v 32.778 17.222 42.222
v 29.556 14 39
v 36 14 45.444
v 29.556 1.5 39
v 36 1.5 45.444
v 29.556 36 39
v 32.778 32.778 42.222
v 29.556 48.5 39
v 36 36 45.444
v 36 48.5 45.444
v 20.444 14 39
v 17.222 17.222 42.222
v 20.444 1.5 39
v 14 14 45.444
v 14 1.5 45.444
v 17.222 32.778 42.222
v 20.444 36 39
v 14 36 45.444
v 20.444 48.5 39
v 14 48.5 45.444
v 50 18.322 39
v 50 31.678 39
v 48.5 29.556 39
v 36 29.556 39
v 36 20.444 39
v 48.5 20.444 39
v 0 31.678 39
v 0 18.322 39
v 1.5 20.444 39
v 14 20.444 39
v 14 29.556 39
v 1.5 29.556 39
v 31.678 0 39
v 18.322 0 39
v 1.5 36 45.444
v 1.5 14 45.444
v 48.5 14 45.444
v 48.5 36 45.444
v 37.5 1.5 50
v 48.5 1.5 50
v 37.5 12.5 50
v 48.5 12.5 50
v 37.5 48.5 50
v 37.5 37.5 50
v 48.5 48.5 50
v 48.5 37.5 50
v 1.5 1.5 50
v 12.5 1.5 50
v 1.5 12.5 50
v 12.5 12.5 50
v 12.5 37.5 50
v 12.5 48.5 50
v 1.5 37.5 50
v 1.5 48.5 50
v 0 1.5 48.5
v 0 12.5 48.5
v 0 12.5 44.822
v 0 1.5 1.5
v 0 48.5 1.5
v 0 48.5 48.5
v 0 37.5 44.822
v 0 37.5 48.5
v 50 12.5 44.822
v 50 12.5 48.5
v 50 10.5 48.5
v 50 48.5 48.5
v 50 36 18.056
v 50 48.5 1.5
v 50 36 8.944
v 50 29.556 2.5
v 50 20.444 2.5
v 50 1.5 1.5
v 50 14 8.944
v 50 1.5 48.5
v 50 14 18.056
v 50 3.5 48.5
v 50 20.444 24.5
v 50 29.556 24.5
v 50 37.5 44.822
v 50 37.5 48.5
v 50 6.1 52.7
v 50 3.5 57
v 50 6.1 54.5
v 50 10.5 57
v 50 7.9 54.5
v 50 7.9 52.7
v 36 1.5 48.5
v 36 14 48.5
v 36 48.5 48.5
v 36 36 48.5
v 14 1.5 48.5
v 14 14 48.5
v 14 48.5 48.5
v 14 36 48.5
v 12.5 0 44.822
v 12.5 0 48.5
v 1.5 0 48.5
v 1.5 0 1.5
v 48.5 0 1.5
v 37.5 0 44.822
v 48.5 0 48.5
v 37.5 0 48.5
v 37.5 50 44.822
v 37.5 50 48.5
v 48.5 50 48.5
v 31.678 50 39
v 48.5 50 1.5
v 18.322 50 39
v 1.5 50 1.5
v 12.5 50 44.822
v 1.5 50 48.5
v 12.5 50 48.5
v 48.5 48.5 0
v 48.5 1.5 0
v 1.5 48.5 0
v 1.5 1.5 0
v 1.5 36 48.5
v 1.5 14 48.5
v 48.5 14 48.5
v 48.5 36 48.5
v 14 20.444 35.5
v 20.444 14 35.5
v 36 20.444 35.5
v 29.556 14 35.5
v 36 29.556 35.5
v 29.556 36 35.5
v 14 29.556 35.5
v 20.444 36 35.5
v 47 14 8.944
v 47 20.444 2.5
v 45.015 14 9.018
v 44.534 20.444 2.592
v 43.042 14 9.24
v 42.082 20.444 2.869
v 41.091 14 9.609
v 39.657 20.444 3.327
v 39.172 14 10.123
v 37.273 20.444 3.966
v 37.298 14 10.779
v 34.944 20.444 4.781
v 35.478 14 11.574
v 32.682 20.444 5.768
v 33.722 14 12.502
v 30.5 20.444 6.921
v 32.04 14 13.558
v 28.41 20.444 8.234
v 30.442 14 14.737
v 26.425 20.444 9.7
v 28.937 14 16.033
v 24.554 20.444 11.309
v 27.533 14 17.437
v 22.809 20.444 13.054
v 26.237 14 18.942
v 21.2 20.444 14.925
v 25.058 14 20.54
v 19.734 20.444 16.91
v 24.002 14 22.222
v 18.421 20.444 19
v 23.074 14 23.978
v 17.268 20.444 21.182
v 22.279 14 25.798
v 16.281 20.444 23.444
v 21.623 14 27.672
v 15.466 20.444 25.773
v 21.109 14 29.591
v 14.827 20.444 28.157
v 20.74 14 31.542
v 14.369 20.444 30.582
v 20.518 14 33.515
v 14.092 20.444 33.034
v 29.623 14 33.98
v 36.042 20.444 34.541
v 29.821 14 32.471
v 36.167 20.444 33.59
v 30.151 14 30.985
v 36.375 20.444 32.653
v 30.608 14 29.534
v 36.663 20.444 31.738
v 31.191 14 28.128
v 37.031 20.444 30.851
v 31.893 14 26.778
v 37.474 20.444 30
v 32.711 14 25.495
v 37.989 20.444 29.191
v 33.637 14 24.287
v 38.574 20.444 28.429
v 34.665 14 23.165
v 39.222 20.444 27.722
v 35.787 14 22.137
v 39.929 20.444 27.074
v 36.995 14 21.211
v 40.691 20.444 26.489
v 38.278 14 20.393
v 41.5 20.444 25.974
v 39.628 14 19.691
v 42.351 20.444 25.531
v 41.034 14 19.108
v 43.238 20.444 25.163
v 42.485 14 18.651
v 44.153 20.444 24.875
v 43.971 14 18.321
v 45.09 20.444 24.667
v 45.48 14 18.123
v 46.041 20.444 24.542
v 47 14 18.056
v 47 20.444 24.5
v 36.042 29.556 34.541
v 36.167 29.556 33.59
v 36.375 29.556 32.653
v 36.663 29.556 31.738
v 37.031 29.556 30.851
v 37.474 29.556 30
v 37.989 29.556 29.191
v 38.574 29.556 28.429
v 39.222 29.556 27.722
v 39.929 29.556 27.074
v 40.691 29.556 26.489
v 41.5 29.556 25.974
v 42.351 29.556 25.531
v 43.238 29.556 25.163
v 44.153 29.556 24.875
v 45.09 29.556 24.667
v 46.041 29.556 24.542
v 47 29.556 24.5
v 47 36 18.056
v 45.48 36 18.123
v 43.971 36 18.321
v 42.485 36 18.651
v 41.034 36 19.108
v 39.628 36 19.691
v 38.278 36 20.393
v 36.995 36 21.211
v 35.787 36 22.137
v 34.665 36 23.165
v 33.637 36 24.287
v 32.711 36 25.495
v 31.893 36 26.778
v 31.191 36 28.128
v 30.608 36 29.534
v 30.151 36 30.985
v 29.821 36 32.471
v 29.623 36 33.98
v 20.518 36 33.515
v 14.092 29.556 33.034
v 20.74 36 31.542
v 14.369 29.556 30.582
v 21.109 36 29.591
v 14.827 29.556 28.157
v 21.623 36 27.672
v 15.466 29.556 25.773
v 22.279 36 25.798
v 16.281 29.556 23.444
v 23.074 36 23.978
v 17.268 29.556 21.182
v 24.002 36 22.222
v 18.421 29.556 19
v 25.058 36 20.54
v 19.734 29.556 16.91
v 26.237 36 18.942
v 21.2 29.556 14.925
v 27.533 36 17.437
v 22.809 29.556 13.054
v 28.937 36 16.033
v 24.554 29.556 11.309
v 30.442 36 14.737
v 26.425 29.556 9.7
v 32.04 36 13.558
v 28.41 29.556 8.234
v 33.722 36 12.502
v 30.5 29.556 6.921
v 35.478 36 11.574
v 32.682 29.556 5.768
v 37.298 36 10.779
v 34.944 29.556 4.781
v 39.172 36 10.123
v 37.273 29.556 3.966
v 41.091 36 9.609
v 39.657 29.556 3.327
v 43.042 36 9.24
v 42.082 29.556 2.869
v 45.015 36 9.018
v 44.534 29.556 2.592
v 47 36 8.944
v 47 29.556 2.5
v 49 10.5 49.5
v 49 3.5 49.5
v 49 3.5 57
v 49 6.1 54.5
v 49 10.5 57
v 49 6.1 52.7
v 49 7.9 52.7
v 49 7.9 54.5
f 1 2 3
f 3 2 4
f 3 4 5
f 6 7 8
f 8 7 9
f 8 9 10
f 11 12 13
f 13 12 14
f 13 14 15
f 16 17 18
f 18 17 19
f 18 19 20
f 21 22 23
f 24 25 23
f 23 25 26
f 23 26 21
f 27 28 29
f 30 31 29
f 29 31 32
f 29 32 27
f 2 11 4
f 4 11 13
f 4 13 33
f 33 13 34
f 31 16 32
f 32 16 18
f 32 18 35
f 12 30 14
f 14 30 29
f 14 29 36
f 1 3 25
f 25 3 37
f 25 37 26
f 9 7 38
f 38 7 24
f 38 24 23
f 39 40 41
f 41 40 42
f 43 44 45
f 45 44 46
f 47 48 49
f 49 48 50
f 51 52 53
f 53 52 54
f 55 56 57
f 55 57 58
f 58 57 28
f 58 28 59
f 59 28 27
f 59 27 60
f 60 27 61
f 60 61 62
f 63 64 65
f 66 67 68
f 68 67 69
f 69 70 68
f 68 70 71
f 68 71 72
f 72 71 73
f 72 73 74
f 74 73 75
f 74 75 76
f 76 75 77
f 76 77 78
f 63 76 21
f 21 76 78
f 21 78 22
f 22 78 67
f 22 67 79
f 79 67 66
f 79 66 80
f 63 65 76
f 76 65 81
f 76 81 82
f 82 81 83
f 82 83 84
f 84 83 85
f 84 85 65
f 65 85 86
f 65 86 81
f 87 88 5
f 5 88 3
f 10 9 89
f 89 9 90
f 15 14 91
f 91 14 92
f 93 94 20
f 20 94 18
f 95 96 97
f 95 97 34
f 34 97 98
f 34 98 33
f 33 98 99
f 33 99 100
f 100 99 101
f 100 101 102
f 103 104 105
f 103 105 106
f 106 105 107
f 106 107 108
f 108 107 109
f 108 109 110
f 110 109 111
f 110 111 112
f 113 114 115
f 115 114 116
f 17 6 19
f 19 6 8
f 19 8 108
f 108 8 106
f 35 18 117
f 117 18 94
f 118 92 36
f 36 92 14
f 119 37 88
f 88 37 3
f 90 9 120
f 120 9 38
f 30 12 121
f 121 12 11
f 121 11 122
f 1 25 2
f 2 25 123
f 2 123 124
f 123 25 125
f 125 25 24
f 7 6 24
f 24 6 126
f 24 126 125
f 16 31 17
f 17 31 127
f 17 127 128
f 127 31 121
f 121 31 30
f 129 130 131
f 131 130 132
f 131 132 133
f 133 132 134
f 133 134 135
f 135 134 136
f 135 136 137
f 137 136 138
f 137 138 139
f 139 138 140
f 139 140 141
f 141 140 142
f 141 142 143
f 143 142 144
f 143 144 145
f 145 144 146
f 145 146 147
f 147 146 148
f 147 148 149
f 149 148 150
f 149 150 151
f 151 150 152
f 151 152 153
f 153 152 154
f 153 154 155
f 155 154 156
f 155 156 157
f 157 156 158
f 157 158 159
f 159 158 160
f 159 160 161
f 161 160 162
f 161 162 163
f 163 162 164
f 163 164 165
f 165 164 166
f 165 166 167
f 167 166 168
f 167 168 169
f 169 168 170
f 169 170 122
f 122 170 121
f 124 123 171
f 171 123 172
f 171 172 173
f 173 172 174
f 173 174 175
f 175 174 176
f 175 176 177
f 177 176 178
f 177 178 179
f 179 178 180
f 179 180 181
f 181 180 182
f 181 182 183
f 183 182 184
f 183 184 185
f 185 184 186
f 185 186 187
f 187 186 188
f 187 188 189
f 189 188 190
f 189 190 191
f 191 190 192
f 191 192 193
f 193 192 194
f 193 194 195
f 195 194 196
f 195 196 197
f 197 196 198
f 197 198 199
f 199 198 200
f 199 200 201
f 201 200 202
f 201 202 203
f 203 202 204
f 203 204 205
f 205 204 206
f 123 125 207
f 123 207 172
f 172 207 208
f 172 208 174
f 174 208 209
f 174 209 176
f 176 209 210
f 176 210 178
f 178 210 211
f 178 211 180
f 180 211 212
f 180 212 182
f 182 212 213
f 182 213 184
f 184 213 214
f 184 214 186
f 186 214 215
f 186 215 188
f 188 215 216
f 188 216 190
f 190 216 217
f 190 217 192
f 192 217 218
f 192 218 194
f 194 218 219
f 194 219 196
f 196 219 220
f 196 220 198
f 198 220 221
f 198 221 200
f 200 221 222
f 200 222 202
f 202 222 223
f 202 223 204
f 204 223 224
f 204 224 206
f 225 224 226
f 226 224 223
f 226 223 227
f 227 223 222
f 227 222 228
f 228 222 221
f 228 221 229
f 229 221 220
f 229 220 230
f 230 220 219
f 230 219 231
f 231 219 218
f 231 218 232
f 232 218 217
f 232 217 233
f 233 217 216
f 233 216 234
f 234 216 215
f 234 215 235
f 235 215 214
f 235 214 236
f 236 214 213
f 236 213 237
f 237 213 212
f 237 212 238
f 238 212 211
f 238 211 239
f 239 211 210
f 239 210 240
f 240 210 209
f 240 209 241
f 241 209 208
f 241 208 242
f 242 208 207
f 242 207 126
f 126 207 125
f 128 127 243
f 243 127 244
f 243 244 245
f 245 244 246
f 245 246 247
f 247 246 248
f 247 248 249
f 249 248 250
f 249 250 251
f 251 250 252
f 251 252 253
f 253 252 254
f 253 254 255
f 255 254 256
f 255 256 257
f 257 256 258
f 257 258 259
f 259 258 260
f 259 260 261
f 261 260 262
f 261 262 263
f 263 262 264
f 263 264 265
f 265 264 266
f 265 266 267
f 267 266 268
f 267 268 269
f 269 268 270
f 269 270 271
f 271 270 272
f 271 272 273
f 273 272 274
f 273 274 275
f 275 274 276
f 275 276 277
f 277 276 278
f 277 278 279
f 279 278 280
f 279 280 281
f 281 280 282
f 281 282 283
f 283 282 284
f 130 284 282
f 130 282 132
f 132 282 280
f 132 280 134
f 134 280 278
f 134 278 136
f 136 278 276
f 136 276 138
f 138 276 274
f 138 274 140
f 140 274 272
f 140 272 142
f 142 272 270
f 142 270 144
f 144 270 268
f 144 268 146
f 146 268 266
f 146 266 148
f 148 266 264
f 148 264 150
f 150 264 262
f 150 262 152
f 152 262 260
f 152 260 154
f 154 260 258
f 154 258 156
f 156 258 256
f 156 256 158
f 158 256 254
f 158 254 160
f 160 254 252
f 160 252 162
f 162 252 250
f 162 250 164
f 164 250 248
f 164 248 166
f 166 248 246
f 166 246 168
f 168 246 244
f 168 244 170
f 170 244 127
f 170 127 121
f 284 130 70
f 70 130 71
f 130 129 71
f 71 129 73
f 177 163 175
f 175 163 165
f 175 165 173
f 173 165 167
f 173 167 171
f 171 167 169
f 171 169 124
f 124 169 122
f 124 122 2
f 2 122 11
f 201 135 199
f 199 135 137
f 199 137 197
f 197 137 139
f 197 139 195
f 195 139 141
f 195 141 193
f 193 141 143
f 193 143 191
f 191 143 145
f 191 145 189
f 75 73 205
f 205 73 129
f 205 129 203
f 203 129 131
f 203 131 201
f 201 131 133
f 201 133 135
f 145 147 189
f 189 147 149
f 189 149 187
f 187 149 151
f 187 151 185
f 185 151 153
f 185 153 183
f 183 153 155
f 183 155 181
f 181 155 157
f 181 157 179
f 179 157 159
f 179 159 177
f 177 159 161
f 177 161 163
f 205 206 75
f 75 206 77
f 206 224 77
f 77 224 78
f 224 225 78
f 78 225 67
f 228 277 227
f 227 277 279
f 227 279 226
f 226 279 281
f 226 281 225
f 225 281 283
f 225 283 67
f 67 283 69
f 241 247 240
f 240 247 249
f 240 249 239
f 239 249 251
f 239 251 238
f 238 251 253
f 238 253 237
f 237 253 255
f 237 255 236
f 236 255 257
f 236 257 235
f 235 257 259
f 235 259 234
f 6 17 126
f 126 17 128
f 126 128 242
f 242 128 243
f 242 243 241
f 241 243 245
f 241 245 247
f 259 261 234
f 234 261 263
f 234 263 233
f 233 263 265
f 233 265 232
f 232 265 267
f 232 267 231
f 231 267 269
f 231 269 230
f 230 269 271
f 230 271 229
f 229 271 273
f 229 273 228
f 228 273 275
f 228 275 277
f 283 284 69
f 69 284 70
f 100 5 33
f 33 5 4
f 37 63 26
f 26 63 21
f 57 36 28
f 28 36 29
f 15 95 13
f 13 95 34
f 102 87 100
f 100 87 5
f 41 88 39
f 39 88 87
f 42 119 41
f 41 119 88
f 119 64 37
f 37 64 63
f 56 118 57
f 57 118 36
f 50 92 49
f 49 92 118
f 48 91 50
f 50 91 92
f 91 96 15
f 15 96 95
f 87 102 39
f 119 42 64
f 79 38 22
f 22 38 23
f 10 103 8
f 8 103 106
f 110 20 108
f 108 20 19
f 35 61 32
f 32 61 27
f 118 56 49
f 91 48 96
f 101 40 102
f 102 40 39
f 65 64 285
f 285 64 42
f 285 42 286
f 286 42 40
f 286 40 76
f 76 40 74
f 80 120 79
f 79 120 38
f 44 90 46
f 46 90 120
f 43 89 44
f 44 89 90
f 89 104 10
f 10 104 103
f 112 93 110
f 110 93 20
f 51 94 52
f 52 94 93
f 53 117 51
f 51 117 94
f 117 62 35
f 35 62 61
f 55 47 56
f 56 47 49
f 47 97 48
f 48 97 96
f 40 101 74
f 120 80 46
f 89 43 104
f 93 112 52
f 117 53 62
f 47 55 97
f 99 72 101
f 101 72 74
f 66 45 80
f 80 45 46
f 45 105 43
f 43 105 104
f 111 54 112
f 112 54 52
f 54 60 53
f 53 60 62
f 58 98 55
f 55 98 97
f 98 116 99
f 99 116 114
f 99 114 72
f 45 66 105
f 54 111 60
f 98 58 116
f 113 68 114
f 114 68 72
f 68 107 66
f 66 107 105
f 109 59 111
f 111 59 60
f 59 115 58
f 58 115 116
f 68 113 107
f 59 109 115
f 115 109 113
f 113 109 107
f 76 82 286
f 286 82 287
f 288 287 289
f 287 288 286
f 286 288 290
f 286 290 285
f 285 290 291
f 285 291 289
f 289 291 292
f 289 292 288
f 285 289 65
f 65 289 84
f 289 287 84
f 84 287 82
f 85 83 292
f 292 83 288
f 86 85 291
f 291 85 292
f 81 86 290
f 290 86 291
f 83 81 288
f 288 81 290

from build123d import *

# Parameters (mm, degrees)
SKETCH1_W                = 50
SKETCH1_H                = 50
BOSS_EXTRUDE1_DEPTH      = 50
CUT_EXTRUDE3_DEPTH       = 87.602540378
CUT_EXTRUDE4_DEPTH       = 87.602540378
CHAMFER1_SIZE            = 1.5
BOSS_EXTRUDE2_DEPTH      = 7
BOSS_EXTRUDE2_DEPTH_BACK = 10
SKETCH10_W               = 1
SKETCH10_H               = 7
SKETCH11_W               = 1.8
SKETCH11_H               = 1.8
CUT_EXTRUDE5_DEPTH       = 7


with BuildPart() as part:
    # Sketch1 → Boss-Extrude1 (new body)
    with BuildSketch(Plane.XY):
        with Locations((25, 25)):
            Rectangle(SKETCH1_W, SKETCH1_H)
    extrude(amount=BOSS_EXTRUDE1_DEPTH)

    # Sketch2 → Cut-Extrude3 (cut, through all)
    with BuildSketch(Plane.ZX):
        Polygon((61, 29.556349186), (54.556349186, 36), (45.443650814, 36), (39, 29.556349186), (39, 20.443650814), (45.443650814, 14), (54.556349186, 14), (61, 20.443650814), align=None)
    extrude(amount=CUT_EXTRUDE3_DEPTH, mode=Mode.SUBTRACT)

    # Sketch6 → Cut-Extrude4 (cut, through all)
    with BuildSketch(Plane(origin=(0, 0, 0), x_dir=(0, 0, -1), z_dir=(1, 0, 0))):
        Polygon((-61, 29.556349186), (-61, 20.443650814), (-54.556349186, 14), (-45.443650814, 14), (-39, 20.443650814), (-39, 29.556349186), (-45.443650814, 36), (-54.556349186, 36), align=None)
    extrude(amount=CUT_EXTRUDE4_DEPTH, mode=Mode.SUBTRACT)

    # Cut-Sweep5: sweep along a path in Sketch9
    with BuildLine(Plane(origin=(0, 25, 0), x_dir=(-1, 0, 0), z_dir=(0, -1, 0))) as cut_sweep5_path:
        Line((-50, -13.5), (-47, -13.5))
        ThreePointArc((-47, -13.5), (-31.443650814, -19.943650814), (-25, -35.5))
        Line((-25, -35.5), (-25, -50))
    # Sketch8 → Cut-Sweep5 (sweep, cut)
    with BuildSketch(Plane(origin=(50, 0, 0), x_dir=(0, 0, -1), z_dir=(1, 0, 0))):
        Polygon((-2.5, 29.556349186), (-8.943650814, 36), (-18.056349186, 36), (-24.5, 29.556349186), (-24.5, 20.443650814), (-18.056349186, 14), (-8.943650814, 14), (-2.5, 20.443650814), align=None)
    sweep(path=cut_sweep5_path.line, mode=Mode.SUBTRACT)

    # Chamfer1
    chamfer1_edges = [part.edges().sort_by_distance(p)[0] for p in [
        (50, 7, 50),
        (43, 50, 50),
        (43, 0, 50),
        (7, 50, 50),
        (14, 43, 50),
        (36, 7, 50),
        (36, 0, 47.721825407),
        (14, 0, 47.721825407),
        (14, 50, 47.721825407),
        (36, 50, 47.721825407),
        (32.778174593, 50, 42.221825407),
        (17.221825407, 50, 42.221825407),
        (32.778174593, 0, 42.221825407),
        (17.221825407, 0, 42.221825407),
        (0, 43, 50),
        (25, 50, 0),
        (50, 25, 0),
        (14, 7, 50),
        (36, 43, 50),
        (50, 43, 50),
        (25, 0, 0),
        (0, 7, 50),
        (0, 25, 0),
        (50, 36, 47.721825407),
        (50, 14, 47.721825407),
        (50, 17.221825407, 42.221825407),
        (50, 32.778174593, 42.221825407),
        (0, 14, 47.721825407),
        (0, 36, 47.721825407),
        (43, 14, 50),
        (7, 14, 50),
        (0, 17.221825407, 42.221825407),
        (0, 32.778174593, 42.221825407),
        (43, 36, 50),
        (7, 36, 50),
        (7, 0, 50),
        (0, 50, 25),
        (50, 50, 25),
        (50, 0, 25),
        (0, 0, 25),
    ]]
    chamfer(chamfer1_edges, length=CHAMFER1_SIZE)

    # Sketch10 → Boss-Extrude2 (add, two sides: drawn at the far end of the back side and taken through both)
    with BuildSketch(Plane.XY.offset(50).offset(-BOSS_EXTRUDE2_DEPTH_BACK)):
        with Locations((49.5, 7)):
            Rectangle(SKETCH10_W, SKETCH10_H)
    extrude(amount=BOSS_EXTRUDE2_DEPTH + BOSS_EXTRUDE2_DEPTH_BACK)

    # Sketch11 → Cut-Extrude5 (cut)
    with BuildSketch(Plane(origin=(50, 0, 0), x_dir=(0, 0, -1), z_dir=(1, 0, 0))):
        with Locations((-53.6, 7)):
            Rectangle(SKETCH11_W, SKETCH11_H)
    extrude(amount=-CUT_EXTRUDE5_DEPTH, mode=Mode.SUBTRACT)


solid = part.part
